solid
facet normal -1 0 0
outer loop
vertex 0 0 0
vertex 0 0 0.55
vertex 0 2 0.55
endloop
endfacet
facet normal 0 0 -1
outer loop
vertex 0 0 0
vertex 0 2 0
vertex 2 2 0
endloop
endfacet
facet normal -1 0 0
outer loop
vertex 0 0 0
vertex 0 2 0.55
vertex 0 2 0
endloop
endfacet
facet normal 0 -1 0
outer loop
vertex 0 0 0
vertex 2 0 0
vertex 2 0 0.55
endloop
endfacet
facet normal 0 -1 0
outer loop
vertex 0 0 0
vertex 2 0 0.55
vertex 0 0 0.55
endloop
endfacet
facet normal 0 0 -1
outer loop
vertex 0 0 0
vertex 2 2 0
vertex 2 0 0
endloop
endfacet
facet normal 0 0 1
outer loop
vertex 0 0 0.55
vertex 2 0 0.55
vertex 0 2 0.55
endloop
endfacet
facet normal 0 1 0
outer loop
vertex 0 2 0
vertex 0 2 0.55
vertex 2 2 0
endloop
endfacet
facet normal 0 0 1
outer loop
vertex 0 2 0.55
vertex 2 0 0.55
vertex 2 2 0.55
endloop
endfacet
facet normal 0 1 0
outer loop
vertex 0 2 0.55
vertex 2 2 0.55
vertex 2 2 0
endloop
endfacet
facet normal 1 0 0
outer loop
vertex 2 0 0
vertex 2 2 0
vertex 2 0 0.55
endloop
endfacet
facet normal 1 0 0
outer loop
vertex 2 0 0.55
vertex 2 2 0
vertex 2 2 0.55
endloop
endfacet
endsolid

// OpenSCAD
/* Warning, this is a very basic generator with a lot of approximation 
input data : [UDFN, 3VW, 2x2x0.55mm, 10, , A, C04-00574A]
generated by com.zoubworld.electronics.cad.model3d.Basic
Date : Sun Feb 15 10:50:49 CET 2026
*/

//body
color("black")
translate([0,0,0])
cube([2.0,2.0,0.55], center=false);
